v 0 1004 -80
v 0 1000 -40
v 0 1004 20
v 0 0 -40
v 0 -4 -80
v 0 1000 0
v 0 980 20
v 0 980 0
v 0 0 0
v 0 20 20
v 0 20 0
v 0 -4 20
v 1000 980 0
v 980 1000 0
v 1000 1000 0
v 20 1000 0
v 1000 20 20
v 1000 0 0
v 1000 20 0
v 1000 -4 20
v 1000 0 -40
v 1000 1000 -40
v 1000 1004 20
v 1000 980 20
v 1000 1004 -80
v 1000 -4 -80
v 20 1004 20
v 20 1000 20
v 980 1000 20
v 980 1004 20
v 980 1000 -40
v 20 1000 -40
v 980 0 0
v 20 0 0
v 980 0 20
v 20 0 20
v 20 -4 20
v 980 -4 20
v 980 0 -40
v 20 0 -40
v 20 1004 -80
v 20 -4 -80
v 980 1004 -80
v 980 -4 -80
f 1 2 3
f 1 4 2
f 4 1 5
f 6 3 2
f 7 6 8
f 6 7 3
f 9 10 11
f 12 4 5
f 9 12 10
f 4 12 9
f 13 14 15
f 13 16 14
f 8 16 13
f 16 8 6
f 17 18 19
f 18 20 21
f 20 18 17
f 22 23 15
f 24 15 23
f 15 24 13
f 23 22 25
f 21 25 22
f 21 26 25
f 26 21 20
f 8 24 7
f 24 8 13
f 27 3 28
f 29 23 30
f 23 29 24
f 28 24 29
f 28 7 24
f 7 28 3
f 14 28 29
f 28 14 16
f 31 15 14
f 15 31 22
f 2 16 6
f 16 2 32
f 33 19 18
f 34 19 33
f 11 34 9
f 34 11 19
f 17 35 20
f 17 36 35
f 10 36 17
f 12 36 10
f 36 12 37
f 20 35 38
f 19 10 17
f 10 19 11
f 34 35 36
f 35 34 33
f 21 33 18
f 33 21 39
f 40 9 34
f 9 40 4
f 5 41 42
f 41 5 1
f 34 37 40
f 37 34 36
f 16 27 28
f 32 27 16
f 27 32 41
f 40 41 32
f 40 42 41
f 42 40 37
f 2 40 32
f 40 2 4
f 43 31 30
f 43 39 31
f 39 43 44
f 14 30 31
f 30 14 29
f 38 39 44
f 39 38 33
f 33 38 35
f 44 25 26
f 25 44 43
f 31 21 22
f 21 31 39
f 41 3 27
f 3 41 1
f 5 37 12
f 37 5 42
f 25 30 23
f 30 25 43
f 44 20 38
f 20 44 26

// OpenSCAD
// file: xcarve-vwheel.scad
module vwheel(spacer)
{
        color("grey") {
                translate([0, 0, 10]) cylinder(r=12, h=10);
                cylinder(r=5, h=spacer);
        }
}
// file: ../Common/nema.scad
module nema_motor(w, d, length)
{
        color("black") {
                translate([-w/2, -w/2, 0])
                        cube([w, w, length]);
        }
        color("lightgray") {
                cylinder(r=d, h=length+20);
        }
}

module nema23_motor(length)
{
        nema_motor(57, 6, length);
}

function nema34_dim() = 85.85;

module nema34_motor(length)
{
        nema_motor(nema34_dim(), 7, length);
}

function nema42_dim() = 110;

module nema42_motor(length)
{
        nema_motor(110, 8.5, length);
}

module nema23_phidget_3332_0()
{
        color("black") {
                translate([-57/2, -57/2, 48+28])
                        cube([57, 57, 56]);
                translate([0, 0, 28])
                    cylinder(r=26, h=48);
        }
        color("lightgray") {
                cylinder(r=6, h=26);
                translate([0, 0, 26])
                    cylinder(r=16, h=2);
        }        
}
// file: xcarve-z-carriage.scad
use <xcarve-vwheel.scad>

module weedingtool(length)
{
        color("yellow") {
                translate([-50, -100, -50])
                cube([100, 100, 100]);
        }
        color("grey") {
                translate([0, -50, -length-50])
                cylinder(r=16, h=length);
        }
}

module z_carriage(height, tool_length, invert)
{
        translate([70, 0, 70]) 
                rotate([0, invert? 180 : 0, 0])
                weedingtool(tool_length);
        color("black") {
                cube([140, 4, 140]);
        }
        translate([40, 4, 20]) 
                rotate([-90, 0, 0])
                vwheel(10);
        translate([40, 4, 120]) 
                rotate([-90, 0, 0])
                vwheel(10);
        translate([140-40, 4, 20]) 
                rotate([-90, 0, 0])
                vwheel(10);
        translate([140-40, 4, 120]) 
                rotate([-90, 0, 0])
                vwheel(10);
}

z_carriage(600, 600);
// file: xcarve-x-carriage.scad
use <xcarve-z-carriage.scad>
use <../Common/nema.scad>

module leadscrew(length)
{
        color("lightgray") {
                cylinder(r=4, h=length);
        }
}

module x_carriage(height, tool_length, z, invert)
{
        color("black") {
                // plates
                translate([0, 0, 0]) cube([150, 4, 140]);
                translate([0, 61, 0]) cube([150, 4, 140]);
                translate([0, 0, 120]) cube([150, 65, 4]);
        }

        translate([0, 0, 50]) {
                color("black") {
                        // z-axis makeslide 
                        translate([55, -20, -height])
                                cube([40, 20, height+140]);

                        // motor plate
                        translate([(150-57)/2, -40, 140])
                                cube([57, 97, 5]);
                }
                translate([75, -25, -height]) 
                        leadscrew(height+140+20);

                translate([57/2+(150-57)/2, 57/2, 140-45])
                        nema23_motor(45);
                *translate([5, -35, -z])
                        z_carriage(height, tool_length, invert);
        }
        
}

x_carriage(600, 200, 0, 0);
// file: xcarve-gantry.scad
use <xcarve-x-carriage.scad>

module gantry(length, width, height, tool_length, x, z, invert)
{
        color("black") {
                // x-rail
                translate([0, 0, 145]) cube([length, 45, 40]);
                // plates
                translate([-4, 0, 60]) cube([4, 45, 125]);
                translate([width, 0, 60]) cube([4, 45, 125]);
        }
        translate([x, -10, 145-40])
                x_carriage(height, tool_length, z, invert);
}

gantry(1000, 1000, 600, 600, 500, 500, 400, 1);
// file: ../Common/tubular.scad
module square_tube(len, L)
{
        difference() {
                color("lightgray")
                        cube([L, len,  L]);
                translate([2, -1, 2])
                        color("lightgray")
                        cube([L-4, len+2,  L-4]);
        }
}

module cube_connector(L)
{
    color("gray")
        cube([L, L,  L]);    
}

module round_tube(d, L)
{
        color("lightgray") {
                difference() {
                        cylinder(r=d/2, h=L);
                        translate([0, 0, -1])
                                cylinder(r=d/2-2, h=L+2);
                }
        }
}
// main file
use <../Common/tubular.scad>
use <xcarve-gantry.scad>

module base_frames(length, width)
{
        color("black") {
                cube([length, 20, 20]);
                translate([0, 980, 0]) cube([length, 20, 20]);
        }
}

module y_rails(length, width)
{
        color("black") {
                translate([0, 0, 60]) cube([20, length, 40]);
                translate([980, 0, 60]) cube([20, length, 40]);

                translate([0, -4, 0]) cube([20, 4, 100]);
                translate([0, width, 0]) cube([20, 4, 100]);
                translate([length-20, -4, 0]) cube([20, 4, 100]);
                translate([length-20, width, 0]) cube([20, 4, 100]);
        }
}

module xcarve(length, width, height, tool_length, x, y, z, invert)
{
        base_frames(length, width);
        y_rails(length, width);
        *translate([0, y, 0])
                gantry(length, width, height, tool_length, x, z, invert);
}

module xcarve_upside_down(length, width, height, tool_length, x, y, z)
{
        translate([0, width, 20]) 
        rotate([180, 0, 0]) {
                xcarve(length, width, height, tool_length, x, y, z, 1);
        }
}

//xcarve(1000, 1000, 800, 500, 500, 600);
translate([0, 1000, 20]) 
rotate([180, 0, 0]) {
        xcarve(1000, 1000, 600, 600, 500, 500, 400, 1);
}
